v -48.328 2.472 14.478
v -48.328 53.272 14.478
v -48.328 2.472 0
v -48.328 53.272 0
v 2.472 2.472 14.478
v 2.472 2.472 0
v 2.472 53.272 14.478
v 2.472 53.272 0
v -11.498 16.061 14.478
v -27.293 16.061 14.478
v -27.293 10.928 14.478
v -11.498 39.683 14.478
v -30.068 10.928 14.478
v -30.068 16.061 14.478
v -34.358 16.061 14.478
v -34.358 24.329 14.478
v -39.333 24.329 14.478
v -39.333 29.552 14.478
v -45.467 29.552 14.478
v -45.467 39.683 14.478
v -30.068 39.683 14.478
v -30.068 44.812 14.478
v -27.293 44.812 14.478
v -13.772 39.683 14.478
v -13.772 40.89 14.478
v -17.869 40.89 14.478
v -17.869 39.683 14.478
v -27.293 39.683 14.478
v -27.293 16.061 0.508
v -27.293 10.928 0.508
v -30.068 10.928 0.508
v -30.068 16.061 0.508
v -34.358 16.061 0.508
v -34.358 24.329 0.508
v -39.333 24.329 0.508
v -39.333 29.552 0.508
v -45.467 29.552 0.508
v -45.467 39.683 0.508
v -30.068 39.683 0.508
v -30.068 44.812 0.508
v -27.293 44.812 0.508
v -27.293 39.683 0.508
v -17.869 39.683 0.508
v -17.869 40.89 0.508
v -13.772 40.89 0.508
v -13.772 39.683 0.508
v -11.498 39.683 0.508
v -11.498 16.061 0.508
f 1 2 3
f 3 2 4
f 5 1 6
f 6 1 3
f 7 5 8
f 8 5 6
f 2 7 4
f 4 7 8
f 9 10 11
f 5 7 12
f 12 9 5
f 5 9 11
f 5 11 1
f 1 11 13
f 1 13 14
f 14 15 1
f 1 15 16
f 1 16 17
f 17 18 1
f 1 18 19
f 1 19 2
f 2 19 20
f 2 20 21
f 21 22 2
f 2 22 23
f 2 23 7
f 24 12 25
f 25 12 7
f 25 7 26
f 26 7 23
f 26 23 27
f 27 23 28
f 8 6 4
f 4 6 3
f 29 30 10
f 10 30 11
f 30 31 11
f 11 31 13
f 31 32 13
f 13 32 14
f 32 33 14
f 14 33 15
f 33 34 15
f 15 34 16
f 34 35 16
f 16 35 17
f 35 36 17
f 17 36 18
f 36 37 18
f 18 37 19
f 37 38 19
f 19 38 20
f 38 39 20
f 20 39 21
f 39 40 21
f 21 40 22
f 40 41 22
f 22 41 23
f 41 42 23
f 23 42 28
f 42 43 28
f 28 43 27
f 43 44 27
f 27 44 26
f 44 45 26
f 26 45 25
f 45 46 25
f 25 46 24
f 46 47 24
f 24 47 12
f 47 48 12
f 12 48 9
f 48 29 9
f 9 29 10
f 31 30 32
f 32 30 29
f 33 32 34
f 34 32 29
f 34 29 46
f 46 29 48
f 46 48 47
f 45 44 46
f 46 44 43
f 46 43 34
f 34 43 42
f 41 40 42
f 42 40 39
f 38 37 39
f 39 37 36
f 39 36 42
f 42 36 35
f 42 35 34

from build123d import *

# Parameters (mm, degrees)
SKETCH1_W           = 50.8
SKETCH1_H           = 50.8
BOSS_EXTRUDE1_DEPTH = 14.478
SKETCH3_W           = 6.134078845
SKETCH3_H           = 10.131279463
SKETCH3_W_2         = 4.974615739
SKETCH3_H_2         = 3.542535777
SKETCH3_W_3         = 2.775050154
SKETCH3_H_3         = 5.132822303
SKETCH3_H_4         = 5.129144124
SKETCH3_W_4         = 11.43
SKETCH3_H_5         = 11.811
SKETCH3_W_5         = 4.097064437
SKETCH3_H_6         = 1.20756089
CUT_EXTRUDE1_DEPTH  = 13.97


with BuildPart() as part:
    # Sketch1 → Boss-Extrude1 (new body)
    with BuildSketch(Plane.XY):
        with Locations((-22.928187919, 27.871812081)):
            Rectangle(SKETCH1_W, SKETCH1_H)
    extrude(amount=BOSS_EXTRUDE1_DEPTH)

    # Sketch3 → Cut-Extrude1 (cut)
    with BuildSketch(Plane.XY.offset(14.478)):
        with Locations((-42.399843081, 34.61717235)):
            Rectangle(SKETCH3_W, SKETCH3_H)
        Polygon((-39.332803658, 27.871812081), (-34.358187919, 27.871812081), (-34.358187919, 39.682812081), (-39.332803658, 39.682812081), (-39.332803658, 29.551532618), align=None)
        Polygon((-22.928187919, 27.871812081), (-22.928187919, 39.682812081), (-27.293419188, 39.682812081), (-30.068469342, 39.682812081), (-34.358187919, 39.682812081), (-34.358187919, 27.871812081), align=None)
        Polygon((-17.868746746, 39.682812081), (-22.928187919, 39.682812081), (-22.928187919, 27.871812081), (-11.498187919, 27.871812081), (-11.498187919, 39.682812081), (-13.771682309, 39.682812081), align=None)
        Polygon((-22.928187919, 16.060812081), (-22.928187919, 27.871812081), (-34.358187919, 27.871812081), (-34.358187919, 24.329276304), (-34.358187919, 16.060812081), (-30.068469342, 16.060812081), (-27.293419188, 16.060812081), align=None)
        with Locations((-36.845495789, 26.100544193)):
            Rectangle(SKETCH3_W_2, SKETCH3_H_2)
        with Locations((-28.680944265, 13.49440093)):
            Rectangle(SKETCH3_W_3, SKETCH3_H_3)
        with Locations((-28.680944265, 42.247384143)):
            Rectangle(SKETCH3_W_3, SKETCH3_H_4)
        with Locations((-17.213187919, 21.966312081)):
            Rectangle(SKETCH3_W_4, SKETCH3_H_5)
        with Locations((-15.820214527, 40.286592526)):
            Rectangle(SKETCH3_W_5, SKETCH3_H_6)
    extrude(amount=-CUT_EXTRUDE1_DEPTH, mode=Mode.SUBTRACT)


solid = part.part
